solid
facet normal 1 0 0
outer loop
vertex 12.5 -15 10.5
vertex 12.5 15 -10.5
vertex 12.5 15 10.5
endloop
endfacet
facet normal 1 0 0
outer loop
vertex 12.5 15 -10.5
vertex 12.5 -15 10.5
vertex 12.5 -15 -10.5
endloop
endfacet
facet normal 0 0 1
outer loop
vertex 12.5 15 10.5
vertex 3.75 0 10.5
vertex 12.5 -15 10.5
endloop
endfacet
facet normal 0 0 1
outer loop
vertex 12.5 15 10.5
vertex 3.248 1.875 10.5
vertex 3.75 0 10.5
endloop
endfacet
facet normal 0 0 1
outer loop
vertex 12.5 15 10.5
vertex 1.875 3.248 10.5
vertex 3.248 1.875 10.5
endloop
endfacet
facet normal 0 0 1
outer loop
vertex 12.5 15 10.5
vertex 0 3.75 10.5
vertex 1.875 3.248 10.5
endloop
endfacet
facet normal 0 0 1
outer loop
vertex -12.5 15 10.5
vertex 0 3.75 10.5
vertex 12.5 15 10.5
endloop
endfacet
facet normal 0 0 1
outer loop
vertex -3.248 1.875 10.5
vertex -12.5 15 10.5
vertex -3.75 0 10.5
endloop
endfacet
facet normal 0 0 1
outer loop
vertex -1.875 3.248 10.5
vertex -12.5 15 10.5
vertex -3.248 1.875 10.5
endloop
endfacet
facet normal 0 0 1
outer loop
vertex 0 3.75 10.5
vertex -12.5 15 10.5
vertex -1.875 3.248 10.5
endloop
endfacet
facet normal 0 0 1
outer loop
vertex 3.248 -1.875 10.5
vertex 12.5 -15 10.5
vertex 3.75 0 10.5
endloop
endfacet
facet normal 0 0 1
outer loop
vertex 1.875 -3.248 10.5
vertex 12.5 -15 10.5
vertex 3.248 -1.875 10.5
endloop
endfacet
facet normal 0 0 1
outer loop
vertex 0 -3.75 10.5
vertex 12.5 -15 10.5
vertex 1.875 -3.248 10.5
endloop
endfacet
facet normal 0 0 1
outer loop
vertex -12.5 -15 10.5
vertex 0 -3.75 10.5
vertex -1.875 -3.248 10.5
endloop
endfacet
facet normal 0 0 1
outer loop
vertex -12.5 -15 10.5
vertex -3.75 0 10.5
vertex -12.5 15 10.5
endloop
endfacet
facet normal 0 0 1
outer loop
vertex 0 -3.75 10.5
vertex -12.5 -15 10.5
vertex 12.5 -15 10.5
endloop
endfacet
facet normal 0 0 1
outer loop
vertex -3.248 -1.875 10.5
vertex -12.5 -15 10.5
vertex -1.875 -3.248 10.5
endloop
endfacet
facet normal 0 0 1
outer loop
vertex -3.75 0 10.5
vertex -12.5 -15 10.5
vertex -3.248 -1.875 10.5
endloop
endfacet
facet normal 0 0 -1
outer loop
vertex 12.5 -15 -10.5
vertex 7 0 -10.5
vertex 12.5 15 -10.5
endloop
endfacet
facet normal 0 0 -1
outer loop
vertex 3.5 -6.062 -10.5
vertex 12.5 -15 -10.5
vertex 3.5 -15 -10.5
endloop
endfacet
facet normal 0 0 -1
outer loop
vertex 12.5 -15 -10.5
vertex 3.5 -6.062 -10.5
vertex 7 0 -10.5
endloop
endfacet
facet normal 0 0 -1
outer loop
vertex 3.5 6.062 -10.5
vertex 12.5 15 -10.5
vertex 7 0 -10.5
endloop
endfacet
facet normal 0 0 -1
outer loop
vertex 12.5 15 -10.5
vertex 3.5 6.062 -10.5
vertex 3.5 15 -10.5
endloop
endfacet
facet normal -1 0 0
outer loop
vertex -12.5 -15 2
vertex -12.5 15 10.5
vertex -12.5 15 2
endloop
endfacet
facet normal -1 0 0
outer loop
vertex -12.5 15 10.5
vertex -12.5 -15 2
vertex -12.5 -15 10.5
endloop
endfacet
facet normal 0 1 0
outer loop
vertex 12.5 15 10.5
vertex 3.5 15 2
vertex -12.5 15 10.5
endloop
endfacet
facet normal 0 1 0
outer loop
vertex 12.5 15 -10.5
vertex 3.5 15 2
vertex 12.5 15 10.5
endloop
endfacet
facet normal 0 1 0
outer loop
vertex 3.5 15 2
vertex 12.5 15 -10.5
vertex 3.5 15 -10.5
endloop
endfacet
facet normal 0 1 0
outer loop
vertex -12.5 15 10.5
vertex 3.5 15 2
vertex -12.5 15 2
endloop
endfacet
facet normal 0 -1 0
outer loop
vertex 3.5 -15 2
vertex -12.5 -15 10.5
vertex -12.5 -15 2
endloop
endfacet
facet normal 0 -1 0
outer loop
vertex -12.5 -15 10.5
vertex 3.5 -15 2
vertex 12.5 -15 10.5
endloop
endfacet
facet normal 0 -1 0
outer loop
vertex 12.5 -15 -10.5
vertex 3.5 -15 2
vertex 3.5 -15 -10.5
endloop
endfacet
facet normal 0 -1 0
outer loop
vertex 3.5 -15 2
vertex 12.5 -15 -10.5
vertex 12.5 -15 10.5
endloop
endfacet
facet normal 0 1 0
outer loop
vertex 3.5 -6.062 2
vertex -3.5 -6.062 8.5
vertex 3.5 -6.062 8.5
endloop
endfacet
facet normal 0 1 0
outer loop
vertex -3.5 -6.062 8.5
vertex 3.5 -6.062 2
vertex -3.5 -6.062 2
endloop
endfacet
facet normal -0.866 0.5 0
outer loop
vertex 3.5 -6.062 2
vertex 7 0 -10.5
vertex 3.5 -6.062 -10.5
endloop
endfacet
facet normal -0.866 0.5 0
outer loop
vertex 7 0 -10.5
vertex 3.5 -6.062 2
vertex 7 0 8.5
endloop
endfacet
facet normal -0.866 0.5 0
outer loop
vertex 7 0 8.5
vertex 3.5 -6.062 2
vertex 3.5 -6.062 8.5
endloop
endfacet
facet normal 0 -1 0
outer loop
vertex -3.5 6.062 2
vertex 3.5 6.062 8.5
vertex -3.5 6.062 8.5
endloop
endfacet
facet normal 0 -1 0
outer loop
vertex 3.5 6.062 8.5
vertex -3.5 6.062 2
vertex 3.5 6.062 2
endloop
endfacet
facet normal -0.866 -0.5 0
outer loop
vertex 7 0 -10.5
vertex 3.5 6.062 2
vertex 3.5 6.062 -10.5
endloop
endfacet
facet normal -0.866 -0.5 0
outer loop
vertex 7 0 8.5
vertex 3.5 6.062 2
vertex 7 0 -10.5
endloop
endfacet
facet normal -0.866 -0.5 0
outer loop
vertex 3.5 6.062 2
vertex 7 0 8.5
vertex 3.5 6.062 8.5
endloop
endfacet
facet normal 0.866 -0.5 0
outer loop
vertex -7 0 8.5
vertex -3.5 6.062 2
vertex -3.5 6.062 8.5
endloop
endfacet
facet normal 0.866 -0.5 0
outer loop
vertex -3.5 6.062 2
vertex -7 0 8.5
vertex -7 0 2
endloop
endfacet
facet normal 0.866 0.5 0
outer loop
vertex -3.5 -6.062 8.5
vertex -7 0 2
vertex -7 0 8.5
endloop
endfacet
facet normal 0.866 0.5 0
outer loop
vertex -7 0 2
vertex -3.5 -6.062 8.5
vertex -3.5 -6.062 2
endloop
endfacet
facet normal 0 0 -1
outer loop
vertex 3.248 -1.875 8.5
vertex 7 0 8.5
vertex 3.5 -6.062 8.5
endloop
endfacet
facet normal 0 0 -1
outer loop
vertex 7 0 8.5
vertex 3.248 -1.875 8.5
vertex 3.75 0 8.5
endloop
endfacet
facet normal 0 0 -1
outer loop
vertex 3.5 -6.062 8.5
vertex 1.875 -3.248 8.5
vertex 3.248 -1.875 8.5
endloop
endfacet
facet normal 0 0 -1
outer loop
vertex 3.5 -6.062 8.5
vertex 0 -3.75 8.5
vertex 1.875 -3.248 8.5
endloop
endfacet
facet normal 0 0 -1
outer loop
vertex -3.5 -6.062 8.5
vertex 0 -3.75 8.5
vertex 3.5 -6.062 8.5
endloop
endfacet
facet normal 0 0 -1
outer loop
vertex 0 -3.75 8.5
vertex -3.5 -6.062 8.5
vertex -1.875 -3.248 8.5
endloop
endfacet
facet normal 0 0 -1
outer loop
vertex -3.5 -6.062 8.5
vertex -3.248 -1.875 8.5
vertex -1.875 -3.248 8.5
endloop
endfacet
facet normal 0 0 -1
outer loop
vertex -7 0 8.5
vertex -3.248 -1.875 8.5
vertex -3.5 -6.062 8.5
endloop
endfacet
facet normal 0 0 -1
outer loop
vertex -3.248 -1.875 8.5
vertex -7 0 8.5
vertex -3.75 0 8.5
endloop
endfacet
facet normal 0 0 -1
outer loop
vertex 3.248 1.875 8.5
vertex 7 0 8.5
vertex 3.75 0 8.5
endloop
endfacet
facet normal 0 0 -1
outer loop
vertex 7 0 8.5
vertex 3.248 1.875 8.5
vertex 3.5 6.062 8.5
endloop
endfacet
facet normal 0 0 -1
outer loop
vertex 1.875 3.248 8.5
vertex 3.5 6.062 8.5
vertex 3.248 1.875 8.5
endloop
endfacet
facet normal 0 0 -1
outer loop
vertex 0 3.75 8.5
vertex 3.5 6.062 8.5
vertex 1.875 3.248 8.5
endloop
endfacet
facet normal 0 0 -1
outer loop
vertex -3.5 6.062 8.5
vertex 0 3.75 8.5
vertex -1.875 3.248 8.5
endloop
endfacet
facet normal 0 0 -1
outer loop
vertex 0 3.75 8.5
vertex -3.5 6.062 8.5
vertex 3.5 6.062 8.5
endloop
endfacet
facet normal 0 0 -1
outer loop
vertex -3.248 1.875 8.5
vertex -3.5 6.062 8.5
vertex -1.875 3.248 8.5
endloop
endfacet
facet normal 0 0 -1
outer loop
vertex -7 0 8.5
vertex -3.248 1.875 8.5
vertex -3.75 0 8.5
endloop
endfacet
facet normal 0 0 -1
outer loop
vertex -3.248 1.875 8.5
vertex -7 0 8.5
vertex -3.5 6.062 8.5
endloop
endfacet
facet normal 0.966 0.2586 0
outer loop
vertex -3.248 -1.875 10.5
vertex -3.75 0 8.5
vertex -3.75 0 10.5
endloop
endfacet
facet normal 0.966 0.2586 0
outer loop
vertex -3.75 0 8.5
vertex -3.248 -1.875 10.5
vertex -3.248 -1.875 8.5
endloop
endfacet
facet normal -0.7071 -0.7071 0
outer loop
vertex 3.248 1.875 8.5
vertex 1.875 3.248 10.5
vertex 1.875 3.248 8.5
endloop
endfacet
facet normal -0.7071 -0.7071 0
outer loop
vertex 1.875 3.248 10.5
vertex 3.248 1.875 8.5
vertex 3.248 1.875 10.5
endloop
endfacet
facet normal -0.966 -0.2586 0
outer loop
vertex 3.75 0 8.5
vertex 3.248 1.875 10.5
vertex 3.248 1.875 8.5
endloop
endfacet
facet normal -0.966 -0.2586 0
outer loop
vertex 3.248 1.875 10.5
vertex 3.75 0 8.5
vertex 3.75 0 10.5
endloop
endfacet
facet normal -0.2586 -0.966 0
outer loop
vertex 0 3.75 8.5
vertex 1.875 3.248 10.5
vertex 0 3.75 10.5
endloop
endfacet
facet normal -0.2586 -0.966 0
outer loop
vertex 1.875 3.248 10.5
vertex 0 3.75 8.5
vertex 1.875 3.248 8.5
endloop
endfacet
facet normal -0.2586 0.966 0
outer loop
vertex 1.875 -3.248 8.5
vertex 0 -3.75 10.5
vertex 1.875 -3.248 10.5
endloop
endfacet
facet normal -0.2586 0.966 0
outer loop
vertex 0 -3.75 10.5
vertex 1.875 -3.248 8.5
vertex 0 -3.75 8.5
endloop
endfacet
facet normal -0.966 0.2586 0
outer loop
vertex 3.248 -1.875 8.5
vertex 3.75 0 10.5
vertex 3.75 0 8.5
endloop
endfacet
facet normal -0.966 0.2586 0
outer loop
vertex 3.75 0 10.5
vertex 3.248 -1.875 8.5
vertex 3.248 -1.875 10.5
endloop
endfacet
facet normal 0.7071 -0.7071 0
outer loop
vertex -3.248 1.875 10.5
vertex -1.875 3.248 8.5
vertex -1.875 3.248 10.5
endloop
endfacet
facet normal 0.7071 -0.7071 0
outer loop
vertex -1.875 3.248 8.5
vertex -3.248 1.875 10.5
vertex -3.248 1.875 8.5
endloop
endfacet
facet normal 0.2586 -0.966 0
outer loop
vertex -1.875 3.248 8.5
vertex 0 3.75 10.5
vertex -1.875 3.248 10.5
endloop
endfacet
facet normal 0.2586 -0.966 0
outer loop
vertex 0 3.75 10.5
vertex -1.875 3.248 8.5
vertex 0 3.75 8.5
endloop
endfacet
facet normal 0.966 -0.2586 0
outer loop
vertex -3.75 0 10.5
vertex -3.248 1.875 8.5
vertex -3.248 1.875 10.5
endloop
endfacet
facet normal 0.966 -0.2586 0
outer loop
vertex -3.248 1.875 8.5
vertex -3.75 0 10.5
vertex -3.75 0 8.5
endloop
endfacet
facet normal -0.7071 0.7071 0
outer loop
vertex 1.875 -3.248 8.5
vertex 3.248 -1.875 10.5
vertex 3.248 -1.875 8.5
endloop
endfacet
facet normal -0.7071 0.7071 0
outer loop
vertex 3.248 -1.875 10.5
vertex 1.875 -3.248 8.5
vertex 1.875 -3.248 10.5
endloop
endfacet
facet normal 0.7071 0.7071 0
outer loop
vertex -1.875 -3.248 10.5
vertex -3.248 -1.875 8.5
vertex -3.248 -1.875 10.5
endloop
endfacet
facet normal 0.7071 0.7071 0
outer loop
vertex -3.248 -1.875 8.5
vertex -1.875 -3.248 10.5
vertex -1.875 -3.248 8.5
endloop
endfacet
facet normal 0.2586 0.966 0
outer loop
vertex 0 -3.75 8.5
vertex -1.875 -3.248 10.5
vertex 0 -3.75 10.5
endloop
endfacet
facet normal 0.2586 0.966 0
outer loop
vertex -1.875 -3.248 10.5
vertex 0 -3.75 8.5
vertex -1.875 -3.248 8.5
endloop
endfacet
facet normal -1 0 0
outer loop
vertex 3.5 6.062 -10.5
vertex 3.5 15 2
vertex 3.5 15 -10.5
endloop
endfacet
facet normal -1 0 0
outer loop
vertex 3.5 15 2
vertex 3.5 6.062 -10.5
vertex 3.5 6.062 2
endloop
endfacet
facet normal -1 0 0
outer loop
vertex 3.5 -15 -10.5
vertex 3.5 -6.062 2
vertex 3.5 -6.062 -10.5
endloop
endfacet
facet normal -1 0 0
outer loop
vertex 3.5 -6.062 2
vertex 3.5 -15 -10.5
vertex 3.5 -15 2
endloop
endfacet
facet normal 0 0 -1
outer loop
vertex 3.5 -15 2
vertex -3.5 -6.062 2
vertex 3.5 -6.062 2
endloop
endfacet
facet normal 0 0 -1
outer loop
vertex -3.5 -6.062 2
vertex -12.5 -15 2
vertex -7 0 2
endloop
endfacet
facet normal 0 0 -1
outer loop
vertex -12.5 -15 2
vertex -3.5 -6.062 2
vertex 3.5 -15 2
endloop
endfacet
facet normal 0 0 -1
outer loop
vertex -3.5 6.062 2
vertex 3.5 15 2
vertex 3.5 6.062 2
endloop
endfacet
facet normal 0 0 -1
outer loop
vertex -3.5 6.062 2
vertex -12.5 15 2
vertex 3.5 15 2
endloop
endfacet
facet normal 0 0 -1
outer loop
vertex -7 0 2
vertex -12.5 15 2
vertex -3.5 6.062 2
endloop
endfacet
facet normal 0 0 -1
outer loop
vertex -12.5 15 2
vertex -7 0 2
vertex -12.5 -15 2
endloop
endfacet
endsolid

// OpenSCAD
difference(){
cube([25,30,21],center=true);
translate([0,0,-14.5-2])
cylinder(d=14,h=50,center=true,$fn=6);
cylinder(d=7.5,h=50,center=true);

translate([-2.5-9.5,0,-4.5-2-6-1])
cube(31,center=true);
}
